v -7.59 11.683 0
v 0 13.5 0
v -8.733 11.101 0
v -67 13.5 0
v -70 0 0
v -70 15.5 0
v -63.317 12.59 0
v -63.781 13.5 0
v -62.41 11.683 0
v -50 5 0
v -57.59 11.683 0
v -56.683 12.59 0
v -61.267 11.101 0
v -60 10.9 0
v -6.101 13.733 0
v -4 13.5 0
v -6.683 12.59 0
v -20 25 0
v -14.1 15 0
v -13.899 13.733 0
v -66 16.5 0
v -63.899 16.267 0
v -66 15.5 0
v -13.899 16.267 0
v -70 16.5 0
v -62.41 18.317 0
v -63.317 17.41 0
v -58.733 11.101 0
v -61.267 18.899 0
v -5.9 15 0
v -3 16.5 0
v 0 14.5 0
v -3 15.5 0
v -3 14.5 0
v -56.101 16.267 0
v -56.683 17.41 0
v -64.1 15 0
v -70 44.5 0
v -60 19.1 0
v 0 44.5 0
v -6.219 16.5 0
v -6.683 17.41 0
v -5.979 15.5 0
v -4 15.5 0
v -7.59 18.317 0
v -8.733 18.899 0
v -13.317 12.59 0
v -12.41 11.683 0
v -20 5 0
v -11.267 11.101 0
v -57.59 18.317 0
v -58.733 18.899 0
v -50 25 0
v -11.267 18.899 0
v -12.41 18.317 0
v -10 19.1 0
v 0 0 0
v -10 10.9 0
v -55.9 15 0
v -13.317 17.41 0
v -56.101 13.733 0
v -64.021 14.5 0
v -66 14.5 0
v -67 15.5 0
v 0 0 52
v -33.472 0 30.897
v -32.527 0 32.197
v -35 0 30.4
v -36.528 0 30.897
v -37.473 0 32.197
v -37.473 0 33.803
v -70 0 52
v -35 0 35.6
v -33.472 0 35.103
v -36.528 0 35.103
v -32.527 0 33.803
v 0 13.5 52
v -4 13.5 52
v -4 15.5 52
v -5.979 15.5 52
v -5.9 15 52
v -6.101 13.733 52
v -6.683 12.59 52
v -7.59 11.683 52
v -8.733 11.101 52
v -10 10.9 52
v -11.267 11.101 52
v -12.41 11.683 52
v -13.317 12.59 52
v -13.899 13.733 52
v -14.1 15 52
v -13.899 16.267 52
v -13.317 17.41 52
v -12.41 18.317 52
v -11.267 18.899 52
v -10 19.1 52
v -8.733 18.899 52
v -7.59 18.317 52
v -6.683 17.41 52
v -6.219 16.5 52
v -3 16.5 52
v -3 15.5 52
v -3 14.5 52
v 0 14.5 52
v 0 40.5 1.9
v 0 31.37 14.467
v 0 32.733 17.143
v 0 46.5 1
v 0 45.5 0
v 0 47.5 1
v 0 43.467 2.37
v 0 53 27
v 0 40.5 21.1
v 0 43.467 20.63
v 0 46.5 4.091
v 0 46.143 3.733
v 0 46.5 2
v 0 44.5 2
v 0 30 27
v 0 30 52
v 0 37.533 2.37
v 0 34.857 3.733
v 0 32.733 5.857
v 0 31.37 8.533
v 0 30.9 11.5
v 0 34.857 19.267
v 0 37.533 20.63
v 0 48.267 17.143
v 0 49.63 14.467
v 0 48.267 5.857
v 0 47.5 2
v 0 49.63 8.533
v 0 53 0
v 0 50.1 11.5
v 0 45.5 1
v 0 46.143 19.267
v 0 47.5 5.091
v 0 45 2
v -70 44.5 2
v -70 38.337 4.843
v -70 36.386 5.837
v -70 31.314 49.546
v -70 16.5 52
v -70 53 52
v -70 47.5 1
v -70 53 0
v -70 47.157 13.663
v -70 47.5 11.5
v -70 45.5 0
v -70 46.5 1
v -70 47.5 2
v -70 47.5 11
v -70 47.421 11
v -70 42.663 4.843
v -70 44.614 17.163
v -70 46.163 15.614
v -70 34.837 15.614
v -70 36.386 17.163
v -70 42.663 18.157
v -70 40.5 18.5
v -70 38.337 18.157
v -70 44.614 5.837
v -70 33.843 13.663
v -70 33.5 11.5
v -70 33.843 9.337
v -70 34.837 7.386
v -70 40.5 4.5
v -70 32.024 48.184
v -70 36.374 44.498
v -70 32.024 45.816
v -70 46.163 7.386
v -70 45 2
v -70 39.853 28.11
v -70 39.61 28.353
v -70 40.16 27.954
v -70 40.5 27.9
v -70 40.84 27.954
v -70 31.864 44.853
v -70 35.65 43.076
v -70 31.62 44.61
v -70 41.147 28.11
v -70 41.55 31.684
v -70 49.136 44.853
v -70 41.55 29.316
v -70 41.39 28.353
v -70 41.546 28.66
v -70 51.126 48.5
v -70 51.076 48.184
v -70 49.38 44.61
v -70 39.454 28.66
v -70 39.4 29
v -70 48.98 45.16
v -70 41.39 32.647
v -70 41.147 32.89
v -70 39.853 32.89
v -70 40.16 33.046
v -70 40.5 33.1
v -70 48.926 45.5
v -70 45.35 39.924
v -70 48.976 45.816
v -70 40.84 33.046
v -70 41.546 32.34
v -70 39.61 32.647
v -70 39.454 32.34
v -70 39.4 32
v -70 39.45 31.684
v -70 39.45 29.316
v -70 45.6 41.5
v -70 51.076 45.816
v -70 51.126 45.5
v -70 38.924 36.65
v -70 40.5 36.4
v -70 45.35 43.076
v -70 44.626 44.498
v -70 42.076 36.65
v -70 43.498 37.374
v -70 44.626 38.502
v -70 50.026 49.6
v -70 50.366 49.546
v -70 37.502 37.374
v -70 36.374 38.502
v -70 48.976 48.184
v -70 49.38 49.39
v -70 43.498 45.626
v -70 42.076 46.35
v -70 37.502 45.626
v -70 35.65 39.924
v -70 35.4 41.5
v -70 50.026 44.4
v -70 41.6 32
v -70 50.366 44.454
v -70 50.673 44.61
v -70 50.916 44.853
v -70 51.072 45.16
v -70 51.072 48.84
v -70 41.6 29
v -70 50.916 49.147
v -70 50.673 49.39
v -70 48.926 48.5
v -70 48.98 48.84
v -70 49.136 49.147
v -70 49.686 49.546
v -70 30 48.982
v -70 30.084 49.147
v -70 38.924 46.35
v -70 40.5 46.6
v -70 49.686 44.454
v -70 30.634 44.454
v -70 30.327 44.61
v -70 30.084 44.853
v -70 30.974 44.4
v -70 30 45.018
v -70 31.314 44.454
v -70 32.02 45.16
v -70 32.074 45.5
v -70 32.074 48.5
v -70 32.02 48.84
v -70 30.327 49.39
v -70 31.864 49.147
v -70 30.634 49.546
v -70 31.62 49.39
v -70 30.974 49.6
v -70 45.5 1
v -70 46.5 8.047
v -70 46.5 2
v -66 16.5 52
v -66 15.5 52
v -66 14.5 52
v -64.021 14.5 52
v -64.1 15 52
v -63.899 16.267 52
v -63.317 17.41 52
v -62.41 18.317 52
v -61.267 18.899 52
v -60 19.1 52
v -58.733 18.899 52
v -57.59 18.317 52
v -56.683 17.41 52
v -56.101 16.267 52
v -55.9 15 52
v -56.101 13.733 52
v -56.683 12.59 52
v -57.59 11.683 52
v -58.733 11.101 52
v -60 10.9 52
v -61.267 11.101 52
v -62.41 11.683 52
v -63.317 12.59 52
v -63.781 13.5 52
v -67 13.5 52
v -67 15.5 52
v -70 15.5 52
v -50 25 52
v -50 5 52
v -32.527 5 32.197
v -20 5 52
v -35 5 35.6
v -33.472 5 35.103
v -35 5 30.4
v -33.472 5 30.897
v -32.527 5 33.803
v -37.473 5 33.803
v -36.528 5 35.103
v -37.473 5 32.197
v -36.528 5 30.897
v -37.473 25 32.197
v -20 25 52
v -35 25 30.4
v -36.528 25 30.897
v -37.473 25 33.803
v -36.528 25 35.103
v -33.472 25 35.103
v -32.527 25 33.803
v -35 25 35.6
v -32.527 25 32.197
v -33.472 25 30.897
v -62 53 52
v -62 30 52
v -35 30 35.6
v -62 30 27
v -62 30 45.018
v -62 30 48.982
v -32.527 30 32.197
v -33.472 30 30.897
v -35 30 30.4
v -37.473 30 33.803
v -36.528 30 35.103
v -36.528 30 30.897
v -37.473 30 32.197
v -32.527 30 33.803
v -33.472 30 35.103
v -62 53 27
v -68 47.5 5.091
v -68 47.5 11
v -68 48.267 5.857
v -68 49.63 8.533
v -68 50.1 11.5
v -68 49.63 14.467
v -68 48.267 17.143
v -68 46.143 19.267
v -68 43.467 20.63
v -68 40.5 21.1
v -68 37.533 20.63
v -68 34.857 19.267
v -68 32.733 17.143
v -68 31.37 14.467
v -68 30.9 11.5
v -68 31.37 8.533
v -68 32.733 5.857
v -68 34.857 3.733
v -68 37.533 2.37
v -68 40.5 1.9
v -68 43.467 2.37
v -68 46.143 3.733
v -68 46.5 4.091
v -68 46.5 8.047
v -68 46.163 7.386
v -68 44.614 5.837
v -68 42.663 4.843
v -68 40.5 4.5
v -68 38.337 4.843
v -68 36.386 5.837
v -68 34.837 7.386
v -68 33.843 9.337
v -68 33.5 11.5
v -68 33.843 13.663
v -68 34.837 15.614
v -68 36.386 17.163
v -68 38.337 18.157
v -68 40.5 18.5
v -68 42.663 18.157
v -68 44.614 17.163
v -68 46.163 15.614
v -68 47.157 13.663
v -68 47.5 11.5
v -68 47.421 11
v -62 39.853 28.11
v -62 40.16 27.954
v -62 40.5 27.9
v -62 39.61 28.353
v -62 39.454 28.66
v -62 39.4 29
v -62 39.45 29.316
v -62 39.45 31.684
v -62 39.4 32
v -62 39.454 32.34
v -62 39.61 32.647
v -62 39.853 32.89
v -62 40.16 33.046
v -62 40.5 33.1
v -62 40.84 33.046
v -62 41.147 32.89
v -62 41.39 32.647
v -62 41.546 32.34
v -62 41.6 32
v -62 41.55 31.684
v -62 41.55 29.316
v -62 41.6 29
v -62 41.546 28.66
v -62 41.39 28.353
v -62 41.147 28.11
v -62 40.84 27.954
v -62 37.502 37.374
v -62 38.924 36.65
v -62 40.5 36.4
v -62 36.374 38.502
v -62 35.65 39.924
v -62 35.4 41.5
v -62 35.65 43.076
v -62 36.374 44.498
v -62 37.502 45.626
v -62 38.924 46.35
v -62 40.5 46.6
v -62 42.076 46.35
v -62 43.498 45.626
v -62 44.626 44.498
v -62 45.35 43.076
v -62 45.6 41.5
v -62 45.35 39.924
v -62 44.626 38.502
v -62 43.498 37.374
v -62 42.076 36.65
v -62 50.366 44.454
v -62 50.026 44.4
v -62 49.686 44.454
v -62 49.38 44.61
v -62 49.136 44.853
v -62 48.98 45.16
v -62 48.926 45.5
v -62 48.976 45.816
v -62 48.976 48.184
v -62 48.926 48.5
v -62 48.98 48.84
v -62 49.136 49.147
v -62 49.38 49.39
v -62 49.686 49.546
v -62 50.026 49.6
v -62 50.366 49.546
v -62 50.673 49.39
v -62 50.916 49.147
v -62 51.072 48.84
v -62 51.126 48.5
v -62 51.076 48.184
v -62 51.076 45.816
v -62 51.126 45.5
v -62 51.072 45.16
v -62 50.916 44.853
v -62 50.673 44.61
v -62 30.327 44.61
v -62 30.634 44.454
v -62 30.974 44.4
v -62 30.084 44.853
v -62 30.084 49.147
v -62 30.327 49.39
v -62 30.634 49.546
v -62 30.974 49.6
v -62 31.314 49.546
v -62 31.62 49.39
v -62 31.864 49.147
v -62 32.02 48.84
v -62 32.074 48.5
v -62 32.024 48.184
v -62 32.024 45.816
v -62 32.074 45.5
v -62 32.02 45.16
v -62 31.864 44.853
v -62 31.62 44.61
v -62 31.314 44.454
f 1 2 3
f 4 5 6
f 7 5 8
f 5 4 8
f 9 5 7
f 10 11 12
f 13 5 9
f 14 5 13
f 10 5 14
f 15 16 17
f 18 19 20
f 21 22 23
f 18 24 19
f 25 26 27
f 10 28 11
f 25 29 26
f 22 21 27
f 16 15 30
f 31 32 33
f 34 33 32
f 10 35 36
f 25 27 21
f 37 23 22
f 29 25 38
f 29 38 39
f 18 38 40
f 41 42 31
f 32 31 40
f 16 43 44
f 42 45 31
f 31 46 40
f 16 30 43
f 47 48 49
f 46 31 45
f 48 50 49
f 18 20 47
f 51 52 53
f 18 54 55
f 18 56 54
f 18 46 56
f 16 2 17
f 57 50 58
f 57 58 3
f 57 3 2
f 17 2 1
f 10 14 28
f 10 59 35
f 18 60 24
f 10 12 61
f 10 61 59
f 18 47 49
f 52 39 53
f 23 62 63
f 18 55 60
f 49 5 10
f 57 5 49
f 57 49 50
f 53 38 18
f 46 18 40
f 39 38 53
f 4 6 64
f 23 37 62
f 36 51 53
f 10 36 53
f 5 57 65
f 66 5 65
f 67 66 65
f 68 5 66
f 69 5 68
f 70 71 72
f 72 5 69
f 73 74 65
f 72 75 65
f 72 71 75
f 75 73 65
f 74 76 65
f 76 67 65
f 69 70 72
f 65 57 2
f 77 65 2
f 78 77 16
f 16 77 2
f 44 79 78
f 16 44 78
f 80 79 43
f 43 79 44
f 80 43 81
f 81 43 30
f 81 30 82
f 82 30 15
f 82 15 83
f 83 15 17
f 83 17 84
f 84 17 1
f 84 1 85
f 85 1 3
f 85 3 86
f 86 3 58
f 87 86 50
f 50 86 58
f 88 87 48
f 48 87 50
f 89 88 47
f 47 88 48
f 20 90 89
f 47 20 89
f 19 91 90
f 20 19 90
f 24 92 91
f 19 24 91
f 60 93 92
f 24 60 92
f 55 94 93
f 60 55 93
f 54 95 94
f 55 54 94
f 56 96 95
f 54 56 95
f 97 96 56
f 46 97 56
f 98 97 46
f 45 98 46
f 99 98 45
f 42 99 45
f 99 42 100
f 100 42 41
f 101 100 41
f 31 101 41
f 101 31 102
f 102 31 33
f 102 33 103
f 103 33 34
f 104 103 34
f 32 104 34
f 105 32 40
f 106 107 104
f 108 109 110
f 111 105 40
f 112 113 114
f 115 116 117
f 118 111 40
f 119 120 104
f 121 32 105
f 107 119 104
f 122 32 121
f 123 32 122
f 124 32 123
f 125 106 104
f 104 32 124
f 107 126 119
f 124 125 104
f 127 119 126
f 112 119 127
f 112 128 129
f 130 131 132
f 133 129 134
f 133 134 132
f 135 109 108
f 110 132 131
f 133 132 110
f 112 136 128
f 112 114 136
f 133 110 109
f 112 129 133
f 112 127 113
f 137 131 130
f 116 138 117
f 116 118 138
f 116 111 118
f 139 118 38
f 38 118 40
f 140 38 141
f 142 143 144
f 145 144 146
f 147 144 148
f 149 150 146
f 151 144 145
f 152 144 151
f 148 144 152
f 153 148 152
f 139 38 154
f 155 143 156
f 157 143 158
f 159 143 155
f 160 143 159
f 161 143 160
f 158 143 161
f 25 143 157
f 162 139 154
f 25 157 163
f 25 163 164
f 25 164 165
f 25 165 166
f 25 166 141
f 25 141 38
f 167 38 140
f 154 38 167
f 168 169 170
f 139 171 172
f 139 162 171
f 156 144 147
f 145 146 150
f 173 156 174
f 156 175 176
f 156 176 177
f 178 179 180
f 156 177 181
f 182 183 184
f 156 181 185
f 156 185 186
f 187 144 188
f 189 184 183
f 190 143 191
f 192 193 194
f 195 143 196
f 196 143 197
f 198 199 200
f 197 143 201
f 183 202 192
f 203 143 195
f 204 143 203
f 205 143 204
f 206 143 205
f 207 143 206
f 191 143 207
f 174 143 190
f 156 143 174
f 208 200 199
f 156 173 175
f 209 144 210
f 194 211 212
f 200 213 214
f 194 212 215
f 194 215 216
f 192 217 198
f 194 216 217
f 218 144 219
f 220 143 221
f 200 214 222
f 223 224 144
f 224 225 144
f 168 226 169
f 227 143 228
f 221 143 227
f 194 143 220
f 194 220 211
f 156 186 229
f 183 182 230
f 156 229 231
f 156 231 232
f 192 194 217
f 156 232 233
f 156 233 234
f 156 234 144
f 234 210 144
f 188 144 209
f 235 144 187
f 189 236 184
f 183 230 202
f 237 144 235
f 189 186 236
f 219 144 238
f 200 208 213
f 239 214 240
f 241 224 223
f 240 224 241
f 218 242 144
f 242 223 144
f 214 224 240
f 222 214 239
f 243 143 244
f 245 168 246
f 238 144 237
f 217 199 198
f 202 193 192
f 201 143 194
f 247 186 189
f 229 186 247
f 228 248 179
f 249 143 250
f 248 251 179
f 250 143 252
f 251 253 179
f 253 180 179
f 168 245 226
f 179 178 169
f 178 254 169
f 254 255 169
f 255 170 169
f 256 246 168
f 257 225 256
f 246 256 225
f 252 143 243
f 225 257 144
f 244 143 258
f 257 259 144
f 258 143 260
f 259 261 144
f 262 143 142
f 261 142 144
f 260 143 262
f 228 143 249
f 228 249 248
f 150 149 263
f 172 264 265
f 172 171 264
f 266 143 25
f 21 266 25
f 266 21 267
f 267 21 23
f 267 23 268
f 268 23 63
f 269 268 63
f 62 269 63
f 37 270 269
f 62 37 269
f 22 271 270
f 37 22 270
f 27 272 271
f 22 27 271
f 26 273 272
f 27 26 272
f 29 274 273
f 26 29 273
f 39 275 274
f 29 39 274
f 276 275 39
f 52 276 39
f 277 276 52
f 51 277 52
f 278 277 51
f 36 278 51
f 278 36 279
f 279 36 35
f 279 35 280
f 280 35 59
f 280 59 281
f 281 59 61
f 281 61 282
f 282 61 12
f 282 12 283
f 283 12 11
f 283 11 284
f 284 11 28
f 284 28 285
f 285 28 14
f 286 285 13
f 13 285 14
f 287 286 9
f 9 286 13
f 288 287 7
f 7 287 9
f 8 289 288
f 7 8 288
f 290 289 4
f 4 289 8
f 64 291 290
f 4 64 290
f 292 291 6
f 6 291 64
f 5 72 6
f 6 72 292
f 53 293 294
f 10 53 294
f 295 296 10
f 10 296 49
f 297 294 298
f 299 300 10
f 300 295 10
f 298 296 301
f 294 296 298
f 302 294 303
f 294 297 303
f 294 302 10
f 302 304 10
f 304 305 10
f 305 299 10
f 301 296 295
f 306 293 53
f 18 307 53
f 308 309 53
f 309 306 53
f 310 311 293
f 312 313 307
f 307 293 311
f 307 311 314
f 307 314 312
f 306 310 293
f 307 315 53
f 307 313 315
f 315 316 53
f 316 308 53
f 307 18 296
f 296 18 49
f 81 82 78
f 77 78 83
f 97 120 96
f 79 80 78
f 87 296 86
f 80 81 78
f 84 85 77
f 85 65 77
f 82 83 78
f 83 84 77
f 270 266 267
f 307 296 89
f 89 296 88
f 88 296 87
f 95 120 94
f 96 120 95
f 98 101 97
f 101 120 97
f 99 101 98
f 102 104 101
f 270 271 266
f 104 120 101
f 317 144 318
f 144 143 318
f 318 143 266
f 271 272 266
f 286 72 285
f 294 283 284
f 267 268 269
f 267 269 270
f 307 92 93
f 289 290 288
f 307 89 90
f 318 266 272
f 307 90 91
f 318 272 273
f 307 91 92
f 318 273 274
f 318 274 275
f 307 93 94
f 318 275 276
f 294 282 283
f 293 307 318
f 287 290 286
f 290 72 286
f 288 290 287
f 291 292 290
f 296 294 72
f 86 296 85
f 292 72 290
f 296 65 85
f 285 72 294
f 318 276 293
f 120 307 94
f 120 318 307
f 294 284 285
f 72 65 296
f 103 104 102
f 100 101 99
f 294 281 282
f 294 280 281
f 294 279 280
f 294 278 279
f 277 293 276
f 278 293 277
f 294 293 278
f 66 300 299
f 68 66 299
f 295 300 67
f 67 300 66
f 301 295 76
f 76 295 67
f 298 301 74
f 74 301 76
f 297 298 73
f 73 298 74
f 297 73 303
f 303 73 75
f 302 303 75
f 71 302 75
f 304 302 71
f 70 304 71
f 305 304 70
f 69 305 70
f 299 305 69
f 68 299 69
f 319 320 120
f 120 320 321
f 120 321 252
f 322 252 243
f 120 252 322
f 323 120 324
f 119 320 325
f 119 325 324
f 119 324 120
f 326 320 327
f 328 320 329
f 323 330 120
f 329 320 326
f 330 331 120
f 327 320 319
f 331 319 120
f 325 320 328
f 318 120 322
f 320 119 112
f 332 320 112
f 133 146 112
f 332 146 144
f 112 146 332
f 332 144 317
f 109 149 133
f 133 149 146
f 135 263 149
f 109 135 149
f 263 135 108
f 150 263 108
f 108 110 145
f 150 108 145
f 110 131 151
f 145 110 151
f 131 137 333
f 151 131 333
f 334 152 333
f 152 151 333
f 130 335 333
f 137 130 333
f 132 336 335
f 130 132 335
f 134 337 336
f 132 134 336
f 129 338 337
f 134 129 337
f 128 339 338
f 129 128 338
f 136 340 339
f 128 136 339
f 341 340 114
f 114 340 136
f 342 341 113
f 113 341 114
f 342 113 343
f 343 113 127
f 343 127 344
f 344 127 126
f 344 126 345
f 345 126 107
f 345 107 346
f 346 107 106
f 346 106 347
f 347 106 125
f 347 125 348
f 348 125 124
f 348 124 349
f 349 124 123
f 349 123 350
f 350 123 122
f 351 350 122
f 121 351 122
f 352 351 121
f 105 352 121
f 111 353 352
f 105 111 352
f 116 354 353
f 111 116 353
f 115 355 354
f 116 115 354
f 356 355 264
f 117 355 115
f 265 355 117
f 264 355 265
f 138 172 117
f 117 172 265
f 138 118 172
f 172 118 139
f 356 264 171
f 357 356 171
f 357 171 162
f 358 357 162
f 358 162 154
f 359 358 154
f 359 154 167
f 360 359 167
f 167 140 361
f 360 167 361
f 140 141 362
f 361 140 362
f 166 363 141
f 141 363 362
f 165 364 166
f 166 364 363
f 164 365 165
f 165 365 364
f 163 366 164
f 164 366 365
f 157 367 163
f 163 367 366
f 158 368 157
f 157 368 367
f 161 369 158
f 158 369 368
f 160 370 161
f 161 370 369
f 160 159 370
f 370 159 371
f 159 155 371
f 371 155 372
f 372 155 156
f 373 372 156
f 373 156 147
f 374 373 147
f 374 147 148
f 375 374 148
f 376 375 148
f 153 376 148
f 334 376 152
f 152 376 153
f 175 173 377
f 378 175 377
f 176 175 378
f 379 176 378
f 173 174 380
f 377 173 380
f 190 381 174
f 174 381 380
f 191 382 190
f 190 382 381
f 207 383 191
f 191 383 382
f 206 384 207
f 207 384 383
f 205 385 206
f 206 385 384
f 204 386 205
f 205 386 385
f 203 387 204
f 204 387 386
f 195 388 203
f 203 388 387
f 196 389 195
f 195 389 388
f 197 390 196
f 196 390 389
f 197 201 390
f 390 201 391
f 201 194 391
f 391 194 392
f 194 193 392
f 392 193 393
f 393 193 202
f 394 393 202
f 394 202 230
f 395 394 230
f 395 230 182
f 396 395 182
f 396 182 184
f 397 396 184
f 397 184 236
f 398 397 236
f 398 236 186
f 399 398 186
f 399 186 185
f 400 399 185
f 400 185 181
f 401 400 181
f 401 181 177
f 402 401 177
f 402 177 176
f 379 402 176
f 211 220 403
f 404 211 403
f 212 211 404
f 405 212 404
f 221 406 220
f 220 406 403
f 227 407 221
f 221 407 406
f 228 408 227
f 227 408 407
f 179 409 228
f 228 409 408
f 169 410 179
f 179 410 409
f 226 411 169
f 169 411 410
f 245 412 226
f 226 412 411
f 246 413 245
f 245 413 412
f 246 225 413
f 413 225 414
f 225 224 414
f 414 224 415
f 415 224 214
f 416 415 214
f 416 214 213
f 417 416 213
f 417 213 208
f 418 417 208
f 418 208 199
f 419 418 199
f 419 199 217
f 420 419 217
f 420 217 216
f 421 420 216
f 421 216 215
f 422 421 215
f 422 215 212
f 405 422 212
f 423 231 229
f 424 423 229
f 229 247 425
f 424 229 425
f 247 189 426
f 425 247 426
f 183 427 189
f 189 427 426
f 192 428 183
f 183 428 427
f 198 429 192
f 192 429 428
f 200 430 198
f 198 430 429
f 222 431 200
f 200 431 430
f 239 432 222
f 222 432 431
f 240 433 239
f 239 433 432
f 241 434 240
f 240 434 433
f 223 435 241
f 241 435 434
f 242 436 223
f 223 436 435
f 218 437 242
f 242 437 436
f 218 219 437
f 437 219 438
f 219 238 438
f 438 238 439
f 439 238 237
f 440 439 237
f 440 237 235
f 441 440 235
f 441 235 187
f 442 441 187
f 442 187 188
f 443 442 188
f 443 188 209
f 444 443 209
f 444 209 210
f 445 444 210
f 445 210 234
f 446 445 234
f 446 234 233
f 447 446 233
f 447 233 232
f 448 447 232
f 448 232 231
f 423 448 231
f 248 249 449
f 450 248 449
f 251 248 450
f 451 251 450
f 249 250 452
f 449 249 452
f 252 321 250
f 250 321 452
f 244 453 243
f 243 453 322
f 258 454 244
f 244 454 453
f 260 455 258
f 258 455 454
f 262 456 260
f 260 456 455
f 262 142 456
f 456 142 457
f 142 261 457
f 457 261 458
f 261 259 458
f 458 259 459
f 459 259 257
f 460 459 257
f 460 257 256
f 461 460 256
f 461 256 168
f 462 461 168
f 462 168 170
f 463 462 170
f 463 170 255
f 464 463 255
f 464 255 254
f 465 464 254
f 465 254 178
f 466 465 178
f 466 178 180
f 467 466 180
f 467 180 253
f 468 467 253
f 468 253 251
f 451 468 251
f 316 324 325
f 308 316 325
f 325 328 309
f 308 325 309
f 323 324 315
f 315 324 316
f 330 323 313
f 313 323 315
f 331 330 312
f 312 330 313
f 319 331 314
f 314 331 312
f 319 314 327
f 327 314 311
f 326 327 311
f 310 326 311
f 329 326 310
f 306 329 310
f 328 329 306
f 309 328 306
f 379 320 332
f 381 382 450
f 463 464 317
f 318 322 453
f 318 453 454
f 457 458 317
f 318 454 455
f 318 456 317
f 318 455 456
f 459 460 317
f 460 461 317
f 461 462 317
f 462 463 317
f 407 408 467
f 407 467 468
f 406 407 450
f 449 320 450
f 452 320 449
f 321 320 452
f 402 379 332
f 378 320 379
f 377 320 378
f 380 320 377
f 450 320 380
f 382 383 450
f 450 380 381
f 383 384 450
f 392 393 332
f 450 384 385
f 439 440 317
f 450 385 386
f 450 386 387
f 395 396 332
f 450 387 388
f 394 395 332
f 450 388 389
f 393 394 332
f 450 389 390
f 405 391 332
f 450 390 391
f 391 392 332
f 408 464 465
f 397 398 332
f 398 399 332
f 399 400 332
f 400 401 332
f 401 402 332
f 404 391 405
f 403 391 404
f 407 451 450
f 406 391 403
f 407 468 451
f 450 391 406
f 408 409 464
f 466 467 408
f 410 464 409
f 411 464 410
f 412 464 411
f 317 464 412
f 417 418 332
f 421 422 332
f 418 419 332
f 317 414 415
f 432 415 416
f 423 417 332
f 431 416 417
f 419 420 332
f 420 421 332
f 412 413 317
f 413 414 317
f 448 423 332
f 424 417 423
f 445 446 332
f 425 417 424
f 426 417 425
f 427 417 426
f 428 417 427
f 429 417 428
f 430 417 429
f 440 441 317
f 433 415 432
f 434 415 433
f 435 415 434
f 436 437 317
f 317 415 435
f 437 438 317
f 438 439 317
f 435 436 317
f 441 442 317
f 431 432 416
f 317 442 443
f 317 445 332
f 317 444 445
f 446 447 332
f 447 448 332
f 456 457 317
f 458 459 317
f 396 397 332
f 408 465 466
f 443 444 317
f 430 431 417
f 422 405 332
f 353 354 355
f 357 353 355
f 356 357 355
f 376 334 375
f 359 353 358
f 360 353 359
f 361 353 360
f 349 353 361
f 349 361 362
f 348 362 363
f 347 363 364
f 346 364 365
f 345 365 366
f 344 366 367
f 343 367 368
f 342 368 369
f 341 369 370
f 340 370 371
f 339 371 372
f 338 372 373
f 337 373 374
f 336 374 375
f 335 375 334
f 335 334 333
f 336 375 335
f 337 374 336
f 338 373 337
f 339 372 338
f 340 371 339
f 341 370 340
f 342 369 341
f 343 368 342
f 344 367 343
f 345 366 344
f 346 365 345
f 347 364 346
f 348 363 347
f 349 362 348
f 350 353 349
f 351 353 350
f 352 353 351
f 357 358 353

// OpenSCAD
// file: libs/config.scad
holes_extra_radius_compensation = 0.1;

z_axis_shaft_diameter = 10;
z_linear_bearing_outside_diameter = 19;
z_linear_bearing_length = 29;
z_shaft_to_leadscrew_distance = 20/2 + 42/2;  // Half a t-slot + half a stepper motor
z_leadscrew_diameter = 8;
z_leadscrew_nut_screw_diameter = 2;

x_axis_shaft_diameter = 8;
x_axis_pressure_slot_width = 1;
x_end_box_height = 70;

junction_assurance_length = 1;
// main file
// x-bearing-end is the right end of the X axis, it holds the bearing for the pulley, is attached to the Z shaft with 
// linear ball bearings, and is moved by the Z leadscrew
// It also holds the two X shafts
// It is derived from the base x-end ( x_end_base )

include <libs/config.scad>;
include <base-components/x-end-base.scad>;

// Component-specific calculated values
bearing_holder_distance = z_linear_bearing_outside_diameter + 2*2 + 10; 

rotate(a=[0,270,0]){ x_bearing_end(); }

module x_bearing_end(){
    difference(){
        union(){
            // Base x-end solid : as both are a mirror, we only code it once
            x_end_base(); 
        }

        // Remove extraneous solid
        translate([52,-junction_assurance_length,-junction_assurance_length]){
            cube([200,200,200]);
        }


        // Holes for 5mm bearing holder bolt
        translate([bearing_holder_distance, 0, x_end_box_height/2]){ 
            rotate(a=[90,0,0]){
                cylinder(h=200, r=(5/2)+holes_extra_radius_compensation, center=true, $fn=10);
            }
        }
    }

}
